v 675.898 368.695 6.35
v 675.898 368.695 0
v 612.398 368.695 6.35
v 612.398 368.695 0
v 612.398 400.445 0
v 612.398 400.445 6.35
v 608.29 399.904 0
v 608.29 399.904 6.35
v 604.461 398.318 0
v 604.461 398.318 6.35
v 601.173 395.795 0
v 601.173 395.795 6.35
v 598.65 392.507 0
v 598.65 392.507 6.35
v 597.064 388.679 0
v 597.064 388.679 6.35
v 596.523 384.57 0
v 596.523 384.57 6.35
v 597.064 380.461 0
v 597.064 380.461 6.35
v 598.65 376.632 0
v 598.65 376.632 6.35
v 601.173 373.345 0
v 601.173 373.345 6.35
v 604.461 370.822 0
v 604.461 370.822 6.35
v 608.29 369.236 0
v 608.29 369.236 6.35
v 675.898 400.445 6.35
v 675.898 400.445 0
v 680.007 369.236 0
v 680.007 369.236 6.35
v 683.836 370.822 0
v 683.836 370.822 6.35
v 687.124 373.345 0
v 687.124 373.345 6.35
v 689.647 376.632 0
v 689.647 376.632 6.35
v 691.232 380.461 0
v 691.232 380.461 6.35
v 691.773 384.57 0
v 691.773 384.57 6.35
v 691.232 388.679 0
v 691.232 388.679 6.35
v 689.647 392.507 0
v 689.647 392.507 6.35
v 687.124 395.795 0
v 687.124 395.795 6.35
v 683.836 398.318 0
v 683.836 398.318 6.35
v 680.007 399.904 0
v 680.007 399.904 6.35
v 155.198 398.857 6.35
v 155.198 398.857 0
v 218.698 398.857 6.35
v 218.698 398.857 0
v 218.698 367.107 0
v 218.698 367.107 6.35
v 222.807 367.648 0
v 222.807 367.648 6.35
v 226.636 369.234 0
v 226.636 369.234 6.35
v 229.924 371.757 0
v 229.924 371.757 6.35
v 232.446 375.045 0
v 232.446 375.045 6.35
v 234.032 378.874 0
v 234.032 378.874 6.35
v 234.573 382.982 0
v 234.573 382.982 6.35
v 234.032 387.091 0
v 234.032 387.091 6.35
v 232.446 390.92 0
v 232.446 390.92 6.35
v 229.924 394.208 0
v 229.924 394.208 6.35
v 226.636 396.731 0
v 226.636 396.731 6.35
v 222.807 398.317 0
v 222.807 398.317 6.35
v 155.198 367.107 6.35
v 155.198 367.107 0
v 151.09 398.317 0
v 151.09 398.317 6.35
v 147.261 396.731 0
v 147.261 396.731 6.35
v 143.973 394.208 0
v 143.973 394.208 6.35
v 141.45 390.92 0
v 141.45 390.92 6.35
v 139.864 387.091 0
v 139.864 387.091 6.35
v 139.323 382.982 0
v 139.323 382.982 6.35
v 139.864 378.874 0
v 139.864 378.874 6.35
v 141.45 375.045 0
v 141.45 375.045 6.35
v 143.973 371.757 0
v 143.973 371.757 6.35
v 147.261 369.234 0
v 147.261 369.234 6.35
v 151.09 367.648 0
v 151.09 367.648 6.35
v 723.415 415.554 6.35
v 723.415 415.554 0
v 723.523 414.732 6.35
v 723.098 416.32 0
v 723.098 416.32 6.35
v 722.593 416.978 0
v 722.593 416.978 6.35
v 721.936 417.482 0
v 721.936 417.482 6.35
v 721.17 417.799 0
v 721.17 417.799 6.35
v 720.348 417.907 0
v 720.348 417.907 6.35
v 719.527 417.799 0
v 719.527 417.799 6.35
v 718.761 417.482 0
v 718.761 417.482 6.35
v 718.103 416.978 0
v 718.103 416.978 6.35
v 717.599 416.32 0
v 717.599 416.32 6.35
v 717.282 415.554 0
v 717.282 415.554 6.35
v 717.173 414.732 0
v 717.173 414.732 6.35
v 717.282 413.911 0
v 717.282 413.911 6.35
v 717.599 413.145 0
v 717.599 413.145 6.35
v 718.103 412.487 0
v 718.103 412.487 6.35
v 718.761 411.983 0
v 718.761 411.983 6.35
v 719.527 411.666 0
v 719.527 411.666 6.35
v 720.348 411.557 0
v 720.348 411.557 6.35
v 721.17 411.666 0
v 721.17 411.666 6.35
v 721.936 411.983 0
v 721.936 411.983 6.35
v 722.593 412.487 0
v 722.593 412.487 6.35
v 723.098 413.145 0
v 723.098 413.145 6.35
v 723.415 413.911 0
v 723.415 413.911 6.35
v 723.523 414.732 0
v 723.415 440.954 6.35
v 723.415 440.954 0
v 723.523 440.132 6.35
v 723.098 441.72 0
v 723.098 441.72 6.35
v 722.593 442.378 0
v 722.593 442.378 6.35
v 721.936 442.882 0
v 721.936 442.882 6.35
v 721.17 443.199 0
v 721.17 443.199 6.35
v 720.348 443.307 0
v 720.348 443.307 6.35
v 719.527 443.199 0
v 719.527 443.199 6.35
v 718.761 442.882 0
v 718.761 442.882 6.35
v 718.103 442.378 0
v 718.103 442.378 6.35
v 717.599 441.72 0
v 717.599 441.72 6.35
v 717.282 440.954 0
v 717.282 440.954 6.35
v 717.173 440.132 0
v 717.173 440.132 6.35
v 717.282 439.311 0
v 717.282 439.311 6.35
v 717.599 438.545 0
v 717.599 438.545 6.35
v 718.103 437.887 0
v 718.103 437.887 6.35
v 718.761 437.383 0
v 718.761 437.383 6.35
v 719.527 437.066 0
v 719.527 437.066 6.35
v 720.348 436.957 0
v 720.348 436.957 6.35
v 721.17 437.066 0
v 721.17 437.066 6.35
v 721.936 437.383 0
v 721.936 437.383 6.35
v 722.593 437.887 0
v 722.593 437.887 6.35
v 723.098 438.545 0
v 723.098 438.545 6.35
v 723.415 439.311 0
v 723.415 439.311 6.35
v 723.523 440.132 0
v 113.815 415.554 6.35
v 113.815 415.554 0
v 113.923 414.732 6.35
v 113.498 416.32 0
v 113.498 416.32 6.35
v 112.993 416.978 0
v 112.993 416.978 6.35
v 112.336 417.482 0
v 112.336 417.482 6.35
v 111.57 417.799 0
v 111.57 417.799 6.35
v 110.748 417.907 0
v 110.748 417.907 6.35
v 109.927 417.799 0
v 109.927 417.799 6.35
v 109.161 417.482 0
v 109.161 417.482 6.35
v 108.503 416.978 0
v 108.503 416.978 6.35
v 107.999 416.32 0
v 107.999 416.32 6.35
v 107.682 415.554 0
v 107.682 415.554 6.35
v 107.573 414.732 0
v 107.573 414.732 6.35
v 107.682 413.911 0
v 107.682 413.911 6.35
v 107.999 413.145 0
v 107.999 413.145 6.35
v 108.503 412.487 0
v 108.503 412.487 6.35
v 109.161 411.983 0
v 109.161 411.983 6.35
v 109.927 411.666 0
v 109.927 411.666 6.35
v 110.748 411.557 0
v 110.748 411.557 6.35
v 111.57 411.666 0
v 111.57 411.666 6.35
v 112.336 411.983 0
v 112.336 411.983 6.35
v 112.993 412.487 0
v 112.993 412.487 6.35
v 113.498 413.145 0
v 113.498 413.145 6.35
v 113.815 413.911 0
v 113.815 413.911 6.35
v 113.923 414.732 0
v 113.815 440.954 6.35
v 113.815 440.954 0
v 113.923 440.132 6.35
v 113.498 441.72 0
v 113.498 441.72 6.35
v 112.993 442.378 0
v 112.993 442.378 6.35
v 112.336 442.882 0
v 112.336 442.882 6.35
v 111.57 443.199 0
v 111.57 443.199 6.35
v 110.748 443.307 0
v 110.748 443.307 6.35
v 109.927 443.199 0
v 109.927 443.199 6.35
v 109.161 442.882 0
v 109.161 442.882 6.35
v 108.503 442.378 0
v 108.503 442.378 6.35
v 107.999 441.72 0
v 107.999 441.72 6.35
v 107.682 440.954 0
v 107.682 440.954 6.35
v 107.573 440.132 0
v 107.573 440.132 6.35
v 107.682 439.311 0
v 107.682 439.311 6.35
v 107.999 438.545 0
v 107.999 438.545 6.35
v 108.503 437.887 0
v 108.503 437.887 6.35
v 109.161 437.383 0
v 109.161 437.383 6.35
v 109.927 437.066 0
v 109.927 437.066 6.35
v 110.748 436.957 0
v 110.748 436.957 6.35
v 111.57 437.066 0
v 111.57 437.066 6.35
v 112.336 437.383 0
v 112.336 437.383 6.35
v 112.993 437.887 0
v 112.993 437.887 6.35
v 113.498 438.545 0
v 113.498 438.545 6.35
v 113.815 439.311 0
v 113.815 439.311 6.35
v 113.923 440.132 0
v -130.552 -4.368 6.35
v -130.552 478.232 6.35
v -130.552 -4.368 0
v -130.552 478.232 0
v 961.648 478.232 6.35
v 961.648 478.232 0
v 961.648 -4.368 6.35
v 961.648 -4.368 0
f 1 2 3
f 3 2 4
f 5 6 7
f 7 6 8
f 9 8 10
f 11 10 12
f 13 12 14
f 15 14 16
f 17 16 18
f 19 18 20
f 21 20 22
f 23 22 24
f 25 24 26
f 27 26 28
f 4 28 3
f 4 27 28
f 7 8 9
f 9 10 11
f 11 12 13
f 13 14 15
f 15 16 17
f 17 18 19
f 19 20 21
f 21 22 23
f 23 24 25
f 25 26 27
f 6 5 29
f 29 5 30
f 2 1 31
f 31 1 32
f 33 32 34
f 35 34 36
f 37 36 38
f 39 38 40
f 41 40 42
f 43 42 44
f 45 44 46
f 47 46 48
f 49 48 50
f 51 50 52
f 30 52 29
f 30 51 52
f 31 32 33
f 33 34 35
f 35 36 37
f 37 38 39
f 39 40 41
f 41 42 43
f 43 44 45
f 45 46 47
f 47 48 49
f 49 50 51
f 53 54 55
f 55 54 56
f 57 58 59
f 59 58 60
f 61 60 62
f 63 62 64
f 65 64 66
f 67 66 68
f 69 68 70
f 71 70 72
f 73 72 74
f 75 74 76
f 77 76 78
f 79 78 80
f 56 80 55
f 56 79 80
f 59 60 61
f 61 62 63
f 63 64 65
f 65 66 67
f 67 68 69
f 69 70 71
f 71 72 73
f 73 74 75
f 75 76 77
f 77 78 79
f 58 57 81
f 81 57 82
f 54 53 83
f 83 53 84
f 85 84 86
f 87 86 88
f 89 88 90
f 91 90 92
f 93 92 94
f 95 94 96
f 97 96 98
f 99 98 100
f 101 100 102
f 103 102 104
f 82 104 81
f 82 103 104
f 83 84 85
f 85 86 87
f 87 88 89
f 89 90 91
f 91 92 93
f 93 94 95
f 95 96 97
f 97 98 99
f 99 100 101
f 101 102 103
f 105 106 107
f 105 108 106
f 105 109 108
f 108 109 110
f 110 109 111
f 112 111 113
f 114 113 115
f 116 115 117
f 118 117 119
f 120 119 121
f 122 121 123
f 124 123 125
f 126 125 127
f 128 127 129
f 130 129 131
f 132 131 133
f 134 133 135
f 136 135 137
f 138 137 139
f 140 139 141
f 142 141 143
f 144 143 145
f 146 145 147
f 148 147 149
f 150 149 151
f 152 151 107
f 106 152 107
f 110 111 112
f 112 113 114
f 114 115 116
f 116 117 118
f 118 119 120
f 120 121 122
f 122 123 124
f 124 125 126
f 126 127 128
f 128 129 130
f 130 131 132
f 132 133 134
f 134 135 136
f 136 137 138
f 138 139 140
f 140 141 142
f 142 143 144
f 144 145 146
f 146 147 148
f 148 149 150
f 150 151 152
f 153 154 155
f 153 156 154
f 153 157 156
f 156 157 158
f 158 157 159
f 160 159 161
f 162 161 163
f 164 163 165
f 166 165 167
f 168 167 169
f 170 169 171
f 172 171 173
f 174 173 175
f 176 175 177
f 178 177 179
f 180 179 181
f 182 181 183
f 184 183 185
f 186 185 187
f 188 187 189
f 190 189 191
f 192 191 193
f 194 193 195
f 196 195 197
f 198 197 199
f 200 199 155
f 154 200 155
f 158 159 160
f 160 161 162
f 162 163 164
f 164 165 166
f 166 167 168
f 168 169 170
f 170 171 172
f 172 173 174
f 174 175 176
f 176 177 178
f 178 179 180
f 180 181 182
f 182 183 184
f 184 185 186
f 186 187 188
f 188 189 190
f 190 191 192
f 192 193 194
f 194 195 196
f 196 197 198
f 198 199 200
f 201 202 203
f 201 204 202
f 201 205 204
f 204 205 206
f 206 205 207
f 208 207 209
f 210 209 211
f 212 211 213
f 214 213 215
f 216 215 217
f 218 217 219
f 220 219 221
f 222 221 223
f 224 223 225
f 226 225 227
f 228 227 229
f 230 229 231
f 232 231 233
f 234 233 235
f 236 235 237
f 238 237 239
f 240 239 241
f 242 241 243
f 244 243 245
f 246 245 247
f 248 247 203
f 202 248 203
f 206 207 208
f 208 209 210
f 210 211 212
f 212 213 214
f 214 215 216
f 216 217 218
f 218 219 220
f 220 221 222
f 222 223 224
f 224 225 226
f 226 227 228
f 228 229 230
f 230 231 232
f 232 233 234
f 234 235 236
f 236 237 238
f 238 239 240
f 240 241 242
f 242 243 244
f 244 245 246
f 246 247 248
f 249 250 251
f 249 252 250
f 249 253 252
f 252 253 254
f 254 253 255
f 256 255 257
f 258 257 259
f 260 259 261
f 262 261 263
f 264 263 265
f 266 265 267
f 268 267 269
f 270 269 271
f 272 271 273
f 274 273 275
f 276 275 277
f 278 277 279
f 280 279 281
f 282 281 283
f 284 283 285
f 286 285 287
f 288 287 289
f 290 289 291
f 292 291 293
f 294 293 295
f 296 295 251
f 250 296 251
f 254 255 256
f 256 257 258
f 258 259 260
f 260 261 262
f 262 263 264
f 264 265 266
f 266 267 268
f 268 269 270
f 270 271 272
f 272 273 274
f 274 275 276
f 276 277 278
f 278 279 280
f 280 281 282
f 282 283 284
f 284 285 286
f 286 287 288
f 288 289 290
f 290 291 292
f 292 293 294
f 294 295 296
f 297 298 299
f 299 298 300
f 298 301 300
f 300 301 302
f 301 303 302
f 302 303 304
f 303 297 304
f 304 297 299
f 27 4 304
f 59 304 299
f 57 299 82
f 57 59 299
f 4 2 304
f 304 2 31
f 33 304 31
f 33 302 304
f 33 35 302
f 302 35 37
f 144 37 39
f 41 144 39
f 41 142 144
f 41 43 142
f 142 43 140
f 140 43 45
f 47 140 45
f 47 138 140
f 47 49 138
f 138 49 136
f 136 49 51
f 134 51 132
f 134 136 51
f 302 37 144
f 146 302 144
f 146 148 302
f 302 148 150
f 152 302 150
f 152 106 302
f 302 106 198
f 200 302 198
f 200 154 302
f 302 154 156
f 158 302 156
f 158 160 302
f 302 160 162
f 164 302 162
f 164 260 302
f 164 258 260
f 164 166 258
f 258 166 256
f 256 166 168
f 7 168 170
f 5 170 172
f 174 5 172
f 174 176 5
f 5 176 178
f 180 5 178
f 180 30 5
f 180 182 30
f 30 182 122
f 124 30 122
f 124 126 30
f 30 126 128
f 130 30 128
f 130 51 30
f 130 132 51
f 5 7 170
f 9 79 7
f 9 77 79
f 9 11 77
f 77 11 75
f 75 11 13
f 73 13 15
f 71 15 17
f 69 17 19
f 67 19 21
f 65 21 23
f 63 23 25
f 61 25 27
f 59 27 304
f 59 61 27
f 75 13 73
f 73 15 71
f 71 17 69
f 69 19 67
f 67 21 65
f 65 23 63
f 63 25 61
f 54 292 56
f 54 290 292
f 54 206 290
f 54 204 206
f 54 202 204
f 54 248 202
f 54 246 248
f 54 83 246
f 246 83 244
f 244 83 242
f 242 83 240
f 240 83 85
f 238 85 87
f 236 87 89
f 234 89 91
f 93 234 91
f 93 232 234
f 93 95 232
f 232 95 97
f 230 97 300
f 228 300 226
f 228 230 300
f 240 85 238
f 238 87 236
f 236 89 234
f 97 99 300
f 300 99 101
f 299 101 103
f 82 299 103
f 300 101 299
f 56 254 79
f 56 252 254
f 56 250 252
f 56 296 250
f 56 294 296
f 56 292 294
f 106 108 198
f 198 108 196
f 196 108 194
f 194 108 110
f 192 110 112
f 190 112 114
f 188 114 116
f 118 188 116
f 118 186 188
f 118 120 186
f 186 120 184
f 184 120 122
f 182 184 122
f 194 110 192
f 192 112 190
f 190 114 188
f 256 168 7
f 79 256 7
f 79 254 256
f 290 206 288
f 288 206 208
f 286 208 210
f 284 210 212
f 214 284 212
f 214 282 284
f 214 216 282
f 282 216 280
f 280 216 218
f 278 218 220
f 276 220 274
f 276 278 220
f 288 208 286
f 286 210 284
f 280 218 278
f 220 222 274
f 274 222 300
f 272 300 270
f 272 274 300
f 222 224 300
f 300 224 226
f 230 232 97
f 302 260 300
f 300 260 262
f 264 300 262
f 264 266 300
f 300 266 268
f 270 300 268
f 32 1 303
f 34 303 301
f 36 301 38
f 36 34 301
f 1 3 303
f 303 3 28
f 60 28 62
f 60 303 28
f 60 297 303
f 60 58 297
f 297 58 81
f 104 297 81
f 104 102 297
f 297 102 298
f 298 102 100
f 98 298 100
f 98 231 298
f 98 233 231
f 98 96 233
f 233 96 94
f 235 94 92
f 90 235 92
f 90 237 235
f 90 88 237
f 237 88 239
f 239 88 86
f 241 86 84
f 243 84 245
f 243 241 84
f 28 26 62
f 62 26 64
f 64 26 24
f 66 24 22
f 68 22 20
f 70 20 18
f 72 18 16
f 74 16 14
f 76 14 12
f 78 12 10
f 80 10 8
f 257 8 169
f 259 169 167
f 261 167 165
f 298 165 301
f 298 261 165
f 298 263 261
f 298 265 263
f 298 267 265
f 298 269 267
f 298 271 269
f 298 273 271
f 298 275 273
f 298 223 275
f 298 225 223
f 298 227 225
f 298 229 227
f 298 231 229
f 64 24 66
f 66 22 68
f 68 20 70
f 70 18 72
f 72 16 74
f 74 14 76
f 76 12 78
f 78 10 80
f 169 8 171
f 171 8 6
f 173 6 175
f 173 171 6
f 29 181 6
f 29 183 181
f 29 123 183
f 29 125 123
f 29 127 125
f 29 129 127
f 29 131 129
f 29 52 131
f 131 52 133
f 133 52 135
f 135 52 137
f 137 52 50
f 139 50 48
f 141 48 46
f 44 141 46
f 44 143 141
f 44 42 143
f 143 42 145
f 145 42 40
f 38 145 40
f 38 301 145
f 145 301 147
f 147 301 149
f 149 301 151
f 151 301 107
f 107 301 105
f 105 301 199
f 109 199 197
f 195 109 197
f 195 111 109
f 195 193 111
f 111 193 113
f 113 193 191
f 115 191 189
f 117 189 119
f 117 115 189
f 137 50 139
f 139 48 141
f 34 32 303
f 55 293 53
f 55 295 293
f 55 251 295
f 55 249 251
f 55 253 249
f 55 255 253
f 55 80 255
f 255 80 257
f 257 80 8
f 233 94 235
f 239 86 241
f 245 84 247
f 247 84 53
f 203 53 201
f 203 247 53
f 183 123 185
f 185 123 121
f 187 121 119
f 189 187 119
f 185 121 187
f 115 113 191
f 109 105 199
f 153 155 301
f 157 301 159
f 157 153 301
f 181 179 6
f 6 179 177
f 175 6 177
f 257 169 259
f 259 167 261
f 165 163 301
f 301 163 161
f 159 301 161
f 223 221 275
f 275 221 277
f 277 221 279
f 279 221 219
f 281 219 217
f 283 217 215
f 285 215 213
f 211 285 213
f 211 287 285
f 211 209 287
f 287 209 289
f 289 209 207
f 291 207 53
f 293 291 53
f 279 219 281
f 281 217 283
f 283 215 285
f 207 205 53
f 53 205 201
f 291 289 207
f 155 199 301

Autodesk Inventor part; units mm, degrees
ref_plane "YZ Plane" through (0, 0, 0) normal (1, 0, 0) x (0, 1, 0)
ref_plane "XZ Plane" through (0, 0, 0) normal (0, 1, 0) x (-1, 0, 0)
ref_plane "XY Plane" through (0, 0, 0) normal (0, 0, 1) x (1, 0, 0)
sketch "Sketch1" plane through (0, 0, 0) normal (0, 0, 1) x (1, 0, 0)
  line L0 (-130.5517, -4.3675) -> (961.6483, -4.3675)
  line L1 (961.6483, -4.3675) -> (961.6483, 478.2325)
  line L2 (961.6483, 478.2325) -> (-130.5517, 478.2325)
  line L3 (-130.5517, 478.2325) -> (-130.5517, -4.3675)
  arc A0 (155.1983, 398.8575) -> (155.1983, 367.1075) centre (155.1983, 382.9825) ccw
  arc A1 (218.6983, 367.1075) -> (218.6983, 398.8575) centre (218.6983, 382.9825) ccw
  line L4 (155.1983, 398.8575) -> (218.6983, 398.8575)
  line L5 (218.6983, 367.1075) -> (155.1983, 367.1075)
  arc A2 (612.3983, 400.445) -> (612.3983, 368.695) centre (612.3983, 384.57) ccw
  arc A3 (675.8983, 368.695) -> (675.8983, 400.445) centre (675.8983, 384.57) ccw
  line L6 (612.3983, 400.445) -> (675.8983, 400.445)
  line L7 (675.8983, 368.695) -> (612.3983, 368.695)
  circle A4 centre (110.7483, 440.1325) radius 3.175
  circle A5 centre (110.7483, 414.7325) radius 3.175
  circle A6 centre (720.3483, 440.1325) radius 3.175
  circle A7 centre (720.3483, 414.7325) radius 3.175
  dimension "d0" = 1092.2
  dimension "d1" = 482.6
  dimension "d4" = 63.5
  dimension "d5" = 95.25
  dimension "d6" = 285.75
  dimension "d7" = 63.5
  dimension "d9" = 285.75
  dimension "d14" = 38.1
  dimension "d15" = 63.5
  dimension "d16" = 241.3
  dimension "d17" = 241.3
  dimension "d18" = 38.1
  dimension "d19" = 63.5
  dimension "d20" = 850.9
  dimension "d21" = 850.9
  dimension "d24" = 15.875
extrude "Extrusion1" add sketch "Sketch1" along normal blind 6.35
properties part number "FE-00011"
